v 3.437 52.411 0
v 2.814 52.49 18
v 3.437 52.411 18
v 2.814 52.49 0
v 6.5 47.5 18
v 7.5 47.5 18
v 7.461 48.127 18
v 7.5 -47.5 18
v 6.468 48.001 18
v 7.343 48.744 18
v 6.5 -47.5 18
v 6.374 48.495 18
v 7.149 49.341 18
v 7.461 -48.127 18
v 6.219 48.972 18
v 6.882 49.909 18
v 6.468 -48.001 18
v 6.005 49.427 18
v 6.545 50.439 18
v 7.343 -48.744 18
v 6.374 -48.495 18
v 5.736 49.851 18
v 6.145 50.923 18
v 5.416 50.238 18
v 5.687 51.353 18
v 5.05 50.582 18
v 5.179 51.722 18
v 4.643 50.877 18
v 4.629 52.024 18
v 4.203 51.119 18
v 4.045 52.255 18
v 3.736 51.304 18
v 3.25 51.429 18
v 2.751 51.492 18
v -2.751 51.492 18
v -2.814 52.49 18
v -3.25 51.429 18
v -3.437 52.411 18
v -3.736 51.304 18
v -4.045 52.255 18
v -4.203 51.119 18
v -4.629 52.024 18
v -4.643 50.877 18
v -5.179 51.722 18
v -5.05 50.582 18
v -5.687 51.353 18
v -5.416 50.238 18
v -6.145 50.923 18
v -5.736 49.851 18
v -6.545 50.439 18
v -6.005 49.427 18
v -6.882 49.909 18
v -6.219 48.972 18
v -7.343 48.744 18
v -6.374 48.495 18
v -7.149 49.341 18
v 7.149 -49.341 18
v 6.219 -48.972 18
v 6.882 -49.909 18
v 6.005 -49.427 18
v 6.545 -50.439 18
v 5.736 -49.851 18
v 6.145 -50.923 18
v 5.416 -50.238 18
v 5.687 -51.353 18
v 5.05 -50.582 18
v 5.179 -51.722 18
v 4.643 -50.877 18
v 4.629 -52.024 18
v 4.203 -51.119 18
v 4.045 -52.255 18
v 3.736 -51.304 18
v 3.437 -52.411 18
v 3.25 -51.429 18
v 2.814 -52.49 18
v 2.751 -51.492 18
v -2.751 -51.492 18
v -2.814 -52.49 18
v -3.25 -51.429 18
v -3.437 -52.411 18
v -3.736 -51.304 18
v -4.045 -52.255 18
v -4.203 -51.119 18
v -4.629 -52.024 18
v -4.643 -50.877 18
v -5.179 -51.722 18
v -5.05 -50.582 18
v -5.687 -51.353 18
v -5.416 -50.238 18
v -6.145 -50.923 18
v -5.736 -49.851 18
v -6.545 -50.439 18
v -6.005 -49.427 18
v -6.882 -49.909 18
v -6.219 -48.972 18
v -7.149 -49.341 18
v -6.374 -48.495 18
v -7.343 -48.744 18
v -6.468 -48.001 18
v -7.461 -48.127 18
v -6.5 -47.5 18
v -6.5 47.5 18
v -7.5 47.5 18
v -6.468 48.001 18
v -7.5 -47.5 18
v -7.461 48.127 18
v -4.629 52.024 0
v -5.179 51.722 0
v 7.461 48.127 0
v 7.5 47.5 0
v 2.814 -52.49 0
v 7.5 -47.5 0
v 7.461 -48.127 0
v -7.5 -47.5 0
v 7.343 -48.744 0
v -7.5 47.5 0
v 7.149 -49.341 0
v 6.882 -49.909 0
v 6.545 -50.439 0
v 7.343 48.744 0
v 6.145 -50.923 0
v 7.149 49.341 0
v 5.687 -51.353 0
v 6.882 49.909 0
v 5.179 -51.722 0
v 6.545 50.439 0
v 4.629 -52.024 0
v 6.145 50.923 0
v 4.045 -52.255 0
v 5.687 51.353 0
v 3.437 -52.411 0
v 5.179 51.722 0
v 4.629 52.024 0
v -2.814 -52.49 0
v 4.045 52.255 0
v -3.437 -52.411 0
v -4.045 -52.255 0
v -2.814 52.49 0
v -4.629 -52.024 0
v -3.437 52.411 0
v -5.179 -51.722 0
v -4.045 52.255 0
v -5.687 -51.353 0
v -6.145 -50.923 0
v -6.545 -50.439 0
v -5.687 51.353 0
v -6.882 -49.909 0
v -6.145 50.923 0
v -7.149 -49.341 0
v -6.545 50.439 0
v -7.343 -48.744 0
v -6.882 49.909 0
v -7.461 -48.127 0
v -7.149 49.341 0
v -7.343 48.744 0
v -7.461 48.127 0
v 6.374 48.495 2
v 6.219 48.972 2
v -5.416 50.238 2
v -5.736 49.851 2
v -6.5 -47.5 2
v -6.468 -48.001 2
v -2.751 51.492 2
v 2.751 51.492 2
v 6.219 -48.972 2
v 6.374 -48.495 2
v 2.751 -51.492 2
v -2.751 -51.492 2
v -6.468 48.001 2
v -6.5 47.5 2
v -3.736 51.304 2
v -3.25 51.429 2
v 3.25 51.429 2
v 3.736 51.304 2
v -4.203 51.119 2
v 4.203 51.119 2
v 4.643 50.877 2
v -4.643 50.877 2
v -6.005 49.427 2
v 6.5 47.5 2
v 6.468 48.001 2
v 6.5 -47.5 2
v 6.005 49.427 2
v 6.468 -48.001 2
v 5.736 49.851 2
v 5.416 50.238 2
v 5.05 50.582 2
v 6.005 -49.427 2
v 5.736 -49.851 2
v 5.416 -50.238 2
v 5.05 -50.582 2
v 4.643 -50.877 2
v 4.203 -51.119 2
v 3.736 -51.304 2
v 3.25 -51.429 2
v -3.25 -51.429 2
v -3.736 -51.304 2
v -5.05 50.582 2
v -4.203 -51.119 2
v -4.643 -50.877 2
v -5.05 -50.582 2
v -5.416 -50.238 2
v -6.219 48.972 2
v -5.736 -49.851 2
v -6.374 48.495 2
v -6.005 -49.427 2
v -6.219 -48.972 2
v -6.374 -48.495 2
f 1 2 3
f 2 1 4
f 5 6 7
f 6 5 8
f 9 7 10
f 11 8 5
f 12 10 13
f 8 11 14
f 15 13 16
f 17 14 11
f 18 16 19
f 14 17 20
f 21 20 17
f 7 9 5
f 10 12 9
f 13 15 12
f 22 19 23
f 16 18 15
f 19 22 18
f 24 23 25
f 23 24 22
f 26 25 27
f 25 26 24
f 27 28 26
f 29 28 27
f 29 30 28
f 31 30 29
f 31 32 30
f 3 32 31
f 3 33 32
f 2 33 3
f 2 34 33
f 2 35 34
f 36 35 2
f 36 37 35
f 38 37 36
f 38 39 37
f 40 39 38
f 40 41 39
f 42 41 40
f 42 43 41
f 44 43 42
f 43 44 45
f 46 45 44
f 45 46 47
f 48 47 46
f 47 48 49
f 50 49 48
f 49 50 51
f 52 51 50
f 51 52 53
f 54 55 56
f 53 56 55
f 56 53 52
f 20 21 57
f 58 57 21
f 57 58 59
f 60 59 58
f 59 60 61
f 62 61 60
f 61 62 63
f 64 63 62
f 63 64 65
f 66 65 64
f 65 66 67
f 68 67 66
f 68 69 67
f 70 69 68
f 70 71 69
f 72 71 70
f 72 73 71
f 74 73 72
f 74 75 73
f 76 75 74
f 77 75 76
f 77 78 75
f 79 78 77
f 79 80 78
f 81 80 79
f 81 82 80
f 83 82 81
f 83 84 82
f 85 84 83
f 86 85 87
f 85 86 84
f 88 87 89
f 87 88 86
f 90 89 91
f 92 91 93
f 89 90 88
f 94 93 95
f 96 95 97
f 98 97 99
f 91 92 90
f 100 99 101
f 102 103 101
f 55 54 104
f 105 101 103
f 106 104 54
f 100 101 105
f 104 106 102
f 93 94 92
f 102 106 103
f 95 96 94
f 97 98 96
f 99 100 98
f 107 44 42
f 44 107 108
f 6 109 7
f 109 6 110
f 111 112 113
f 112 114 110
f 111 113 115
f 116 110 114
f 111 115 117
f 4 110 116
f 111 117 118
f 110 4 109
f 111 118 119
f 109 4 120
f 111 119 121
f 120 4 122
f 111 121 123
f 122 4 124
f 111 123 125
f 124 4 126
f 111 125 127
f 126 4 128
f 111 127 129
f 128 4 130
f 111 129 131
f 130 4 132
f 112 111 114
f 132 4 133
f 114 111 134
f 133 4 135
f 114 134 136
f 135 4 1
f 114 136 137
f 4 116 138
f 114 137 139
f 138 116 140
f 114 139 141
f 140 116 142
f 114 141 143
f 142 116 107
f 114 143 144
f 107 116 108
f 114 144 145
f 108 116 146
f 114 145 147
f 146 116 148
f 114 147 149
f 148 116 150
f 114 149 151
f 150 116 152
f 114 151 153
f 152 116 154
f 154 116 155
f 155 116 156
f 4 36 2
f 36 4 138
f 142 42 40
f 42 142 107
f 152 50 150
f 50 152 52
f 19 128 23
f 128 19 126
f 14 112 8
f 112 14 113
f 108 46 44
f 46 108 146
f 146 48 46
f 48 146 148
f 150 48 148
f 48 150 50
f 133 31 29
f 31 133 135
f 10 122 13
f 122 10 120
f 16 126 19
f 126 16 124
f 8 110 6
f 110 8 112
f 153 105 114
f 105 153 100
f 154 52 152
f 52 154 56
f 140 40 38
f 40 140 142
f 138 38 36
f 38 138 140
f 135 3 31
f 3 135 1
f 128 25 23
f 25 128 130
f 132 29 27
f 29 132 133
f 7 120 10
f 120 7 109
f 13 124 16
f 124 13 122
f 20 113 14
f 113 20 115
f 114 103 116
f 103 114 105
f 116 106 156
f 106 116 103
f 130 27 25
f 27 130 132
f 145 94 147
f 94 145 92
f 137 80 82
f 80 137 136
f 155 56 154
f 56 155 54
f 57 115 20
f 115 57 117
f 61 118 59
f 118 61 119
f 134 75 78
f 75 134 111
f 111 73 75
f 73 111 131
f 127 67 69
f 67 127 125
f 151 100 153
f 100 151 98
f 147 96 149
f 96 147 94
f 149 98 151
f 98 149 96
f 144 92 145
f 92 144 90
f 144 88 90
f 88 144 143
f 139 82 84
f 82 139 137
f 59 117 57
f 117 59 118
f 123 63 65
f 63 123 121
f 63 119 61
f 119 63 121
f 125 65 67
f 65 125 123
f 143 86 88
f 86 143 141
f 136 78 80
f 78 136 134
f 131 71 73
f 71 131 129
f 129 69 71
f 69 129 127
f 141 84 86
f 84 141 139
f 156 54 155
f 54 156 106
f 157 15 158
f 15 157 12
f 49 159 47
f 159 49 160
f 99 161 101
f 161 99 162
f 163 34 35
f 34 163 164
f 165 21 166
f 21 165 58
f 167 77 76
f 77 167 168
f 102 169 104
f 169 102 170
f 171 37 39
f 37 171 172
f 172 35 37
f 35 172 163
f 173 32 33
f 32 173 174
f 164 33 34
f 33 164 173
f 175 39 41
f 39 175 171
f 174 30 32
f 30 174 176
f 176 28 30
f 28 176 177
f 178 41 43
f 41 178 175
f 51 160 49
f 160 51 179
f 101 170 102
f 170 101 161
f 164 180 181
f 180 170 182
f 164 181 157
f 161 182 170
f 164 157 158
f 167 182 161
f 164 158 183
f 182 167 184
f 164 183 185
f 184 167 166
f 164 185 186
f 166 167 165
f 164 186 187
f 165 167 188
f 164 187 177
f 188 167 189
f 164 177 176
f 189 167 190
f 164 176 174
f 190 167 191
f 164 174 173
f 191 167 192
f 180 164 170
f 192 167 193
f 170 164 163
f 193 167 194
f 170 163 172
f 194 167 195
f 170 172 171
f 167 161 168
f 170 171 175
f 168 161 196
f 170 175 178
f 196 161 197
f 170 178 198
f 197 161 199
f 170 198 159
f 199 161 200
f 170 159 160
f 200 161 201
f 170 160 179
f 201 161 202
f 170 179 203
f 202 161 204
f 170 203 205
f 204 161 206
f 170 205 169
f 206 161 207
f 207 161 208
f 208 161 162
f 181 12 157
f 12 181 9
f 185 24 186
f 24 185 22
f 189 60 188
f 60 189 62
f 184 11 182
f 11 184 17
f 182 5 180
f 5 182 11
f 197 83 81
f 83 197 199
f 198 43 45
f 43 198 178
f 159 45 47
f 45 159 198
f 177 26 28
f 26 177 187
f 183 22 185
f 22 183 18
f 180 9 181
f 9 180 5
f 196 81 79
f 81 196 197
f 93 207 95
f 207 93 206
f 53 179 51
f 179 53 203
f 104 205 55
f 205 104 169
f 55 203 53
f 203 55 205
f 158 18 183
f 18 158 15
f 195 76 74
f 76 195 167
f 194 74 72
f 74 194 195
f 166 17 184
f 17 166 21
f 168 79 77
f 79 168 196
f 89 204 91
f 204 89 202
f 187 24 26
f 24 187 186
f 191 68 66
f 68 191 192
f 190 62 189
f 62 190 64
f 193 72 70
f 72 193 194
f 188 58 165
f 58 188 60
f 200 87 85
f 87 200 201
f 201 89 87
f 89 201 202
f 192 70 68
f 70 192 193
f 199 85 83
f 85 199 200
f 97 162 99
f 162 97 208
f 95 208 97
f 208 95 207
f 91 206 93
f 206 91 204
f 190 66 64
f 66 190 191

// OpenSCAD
$fn = 50;


difference() {
	union() {
		hull() {
			translate(v = [-2.5000000000, 47.5000000000, 0]) {
				cylinder(h = 18, r = 5);
			}
			translate(v = [2.5000000000, 47.5000000000, 0]) {
				cylinder(h = 18, r = 5);
			}
			translate(v = [-2.5000000000, -47.5000000000, 0]) {
				cylinder(h = 18, r = 5);
			}
			translate(v = [2.5000000000, -47.5000000000, 0]) {
				cylinder(h = 18, r = 5);
			}
		}
	}
	union() {
		translate(v = [0, 0, 2]) {
			hull() {
				translate(v = [-2.5000000000, 47.5000000000, 0]) {
					cylinder(h = 16, r = 4);
				}
				translate(v = [2.5000000000, 47.5000000000, 0]) {
					cylinder(h = 16, r = 4);
				}
				translate(v = [-2.5000000000, -47.5000000000, 0]) {
					cylinder(h = 16, r = 4);
				}
				translate(v = [2.5000000000, -47.5000000000, 0]) {
					cylinder(h = 16, r = 4);
				}
			}
		}
	}
}
